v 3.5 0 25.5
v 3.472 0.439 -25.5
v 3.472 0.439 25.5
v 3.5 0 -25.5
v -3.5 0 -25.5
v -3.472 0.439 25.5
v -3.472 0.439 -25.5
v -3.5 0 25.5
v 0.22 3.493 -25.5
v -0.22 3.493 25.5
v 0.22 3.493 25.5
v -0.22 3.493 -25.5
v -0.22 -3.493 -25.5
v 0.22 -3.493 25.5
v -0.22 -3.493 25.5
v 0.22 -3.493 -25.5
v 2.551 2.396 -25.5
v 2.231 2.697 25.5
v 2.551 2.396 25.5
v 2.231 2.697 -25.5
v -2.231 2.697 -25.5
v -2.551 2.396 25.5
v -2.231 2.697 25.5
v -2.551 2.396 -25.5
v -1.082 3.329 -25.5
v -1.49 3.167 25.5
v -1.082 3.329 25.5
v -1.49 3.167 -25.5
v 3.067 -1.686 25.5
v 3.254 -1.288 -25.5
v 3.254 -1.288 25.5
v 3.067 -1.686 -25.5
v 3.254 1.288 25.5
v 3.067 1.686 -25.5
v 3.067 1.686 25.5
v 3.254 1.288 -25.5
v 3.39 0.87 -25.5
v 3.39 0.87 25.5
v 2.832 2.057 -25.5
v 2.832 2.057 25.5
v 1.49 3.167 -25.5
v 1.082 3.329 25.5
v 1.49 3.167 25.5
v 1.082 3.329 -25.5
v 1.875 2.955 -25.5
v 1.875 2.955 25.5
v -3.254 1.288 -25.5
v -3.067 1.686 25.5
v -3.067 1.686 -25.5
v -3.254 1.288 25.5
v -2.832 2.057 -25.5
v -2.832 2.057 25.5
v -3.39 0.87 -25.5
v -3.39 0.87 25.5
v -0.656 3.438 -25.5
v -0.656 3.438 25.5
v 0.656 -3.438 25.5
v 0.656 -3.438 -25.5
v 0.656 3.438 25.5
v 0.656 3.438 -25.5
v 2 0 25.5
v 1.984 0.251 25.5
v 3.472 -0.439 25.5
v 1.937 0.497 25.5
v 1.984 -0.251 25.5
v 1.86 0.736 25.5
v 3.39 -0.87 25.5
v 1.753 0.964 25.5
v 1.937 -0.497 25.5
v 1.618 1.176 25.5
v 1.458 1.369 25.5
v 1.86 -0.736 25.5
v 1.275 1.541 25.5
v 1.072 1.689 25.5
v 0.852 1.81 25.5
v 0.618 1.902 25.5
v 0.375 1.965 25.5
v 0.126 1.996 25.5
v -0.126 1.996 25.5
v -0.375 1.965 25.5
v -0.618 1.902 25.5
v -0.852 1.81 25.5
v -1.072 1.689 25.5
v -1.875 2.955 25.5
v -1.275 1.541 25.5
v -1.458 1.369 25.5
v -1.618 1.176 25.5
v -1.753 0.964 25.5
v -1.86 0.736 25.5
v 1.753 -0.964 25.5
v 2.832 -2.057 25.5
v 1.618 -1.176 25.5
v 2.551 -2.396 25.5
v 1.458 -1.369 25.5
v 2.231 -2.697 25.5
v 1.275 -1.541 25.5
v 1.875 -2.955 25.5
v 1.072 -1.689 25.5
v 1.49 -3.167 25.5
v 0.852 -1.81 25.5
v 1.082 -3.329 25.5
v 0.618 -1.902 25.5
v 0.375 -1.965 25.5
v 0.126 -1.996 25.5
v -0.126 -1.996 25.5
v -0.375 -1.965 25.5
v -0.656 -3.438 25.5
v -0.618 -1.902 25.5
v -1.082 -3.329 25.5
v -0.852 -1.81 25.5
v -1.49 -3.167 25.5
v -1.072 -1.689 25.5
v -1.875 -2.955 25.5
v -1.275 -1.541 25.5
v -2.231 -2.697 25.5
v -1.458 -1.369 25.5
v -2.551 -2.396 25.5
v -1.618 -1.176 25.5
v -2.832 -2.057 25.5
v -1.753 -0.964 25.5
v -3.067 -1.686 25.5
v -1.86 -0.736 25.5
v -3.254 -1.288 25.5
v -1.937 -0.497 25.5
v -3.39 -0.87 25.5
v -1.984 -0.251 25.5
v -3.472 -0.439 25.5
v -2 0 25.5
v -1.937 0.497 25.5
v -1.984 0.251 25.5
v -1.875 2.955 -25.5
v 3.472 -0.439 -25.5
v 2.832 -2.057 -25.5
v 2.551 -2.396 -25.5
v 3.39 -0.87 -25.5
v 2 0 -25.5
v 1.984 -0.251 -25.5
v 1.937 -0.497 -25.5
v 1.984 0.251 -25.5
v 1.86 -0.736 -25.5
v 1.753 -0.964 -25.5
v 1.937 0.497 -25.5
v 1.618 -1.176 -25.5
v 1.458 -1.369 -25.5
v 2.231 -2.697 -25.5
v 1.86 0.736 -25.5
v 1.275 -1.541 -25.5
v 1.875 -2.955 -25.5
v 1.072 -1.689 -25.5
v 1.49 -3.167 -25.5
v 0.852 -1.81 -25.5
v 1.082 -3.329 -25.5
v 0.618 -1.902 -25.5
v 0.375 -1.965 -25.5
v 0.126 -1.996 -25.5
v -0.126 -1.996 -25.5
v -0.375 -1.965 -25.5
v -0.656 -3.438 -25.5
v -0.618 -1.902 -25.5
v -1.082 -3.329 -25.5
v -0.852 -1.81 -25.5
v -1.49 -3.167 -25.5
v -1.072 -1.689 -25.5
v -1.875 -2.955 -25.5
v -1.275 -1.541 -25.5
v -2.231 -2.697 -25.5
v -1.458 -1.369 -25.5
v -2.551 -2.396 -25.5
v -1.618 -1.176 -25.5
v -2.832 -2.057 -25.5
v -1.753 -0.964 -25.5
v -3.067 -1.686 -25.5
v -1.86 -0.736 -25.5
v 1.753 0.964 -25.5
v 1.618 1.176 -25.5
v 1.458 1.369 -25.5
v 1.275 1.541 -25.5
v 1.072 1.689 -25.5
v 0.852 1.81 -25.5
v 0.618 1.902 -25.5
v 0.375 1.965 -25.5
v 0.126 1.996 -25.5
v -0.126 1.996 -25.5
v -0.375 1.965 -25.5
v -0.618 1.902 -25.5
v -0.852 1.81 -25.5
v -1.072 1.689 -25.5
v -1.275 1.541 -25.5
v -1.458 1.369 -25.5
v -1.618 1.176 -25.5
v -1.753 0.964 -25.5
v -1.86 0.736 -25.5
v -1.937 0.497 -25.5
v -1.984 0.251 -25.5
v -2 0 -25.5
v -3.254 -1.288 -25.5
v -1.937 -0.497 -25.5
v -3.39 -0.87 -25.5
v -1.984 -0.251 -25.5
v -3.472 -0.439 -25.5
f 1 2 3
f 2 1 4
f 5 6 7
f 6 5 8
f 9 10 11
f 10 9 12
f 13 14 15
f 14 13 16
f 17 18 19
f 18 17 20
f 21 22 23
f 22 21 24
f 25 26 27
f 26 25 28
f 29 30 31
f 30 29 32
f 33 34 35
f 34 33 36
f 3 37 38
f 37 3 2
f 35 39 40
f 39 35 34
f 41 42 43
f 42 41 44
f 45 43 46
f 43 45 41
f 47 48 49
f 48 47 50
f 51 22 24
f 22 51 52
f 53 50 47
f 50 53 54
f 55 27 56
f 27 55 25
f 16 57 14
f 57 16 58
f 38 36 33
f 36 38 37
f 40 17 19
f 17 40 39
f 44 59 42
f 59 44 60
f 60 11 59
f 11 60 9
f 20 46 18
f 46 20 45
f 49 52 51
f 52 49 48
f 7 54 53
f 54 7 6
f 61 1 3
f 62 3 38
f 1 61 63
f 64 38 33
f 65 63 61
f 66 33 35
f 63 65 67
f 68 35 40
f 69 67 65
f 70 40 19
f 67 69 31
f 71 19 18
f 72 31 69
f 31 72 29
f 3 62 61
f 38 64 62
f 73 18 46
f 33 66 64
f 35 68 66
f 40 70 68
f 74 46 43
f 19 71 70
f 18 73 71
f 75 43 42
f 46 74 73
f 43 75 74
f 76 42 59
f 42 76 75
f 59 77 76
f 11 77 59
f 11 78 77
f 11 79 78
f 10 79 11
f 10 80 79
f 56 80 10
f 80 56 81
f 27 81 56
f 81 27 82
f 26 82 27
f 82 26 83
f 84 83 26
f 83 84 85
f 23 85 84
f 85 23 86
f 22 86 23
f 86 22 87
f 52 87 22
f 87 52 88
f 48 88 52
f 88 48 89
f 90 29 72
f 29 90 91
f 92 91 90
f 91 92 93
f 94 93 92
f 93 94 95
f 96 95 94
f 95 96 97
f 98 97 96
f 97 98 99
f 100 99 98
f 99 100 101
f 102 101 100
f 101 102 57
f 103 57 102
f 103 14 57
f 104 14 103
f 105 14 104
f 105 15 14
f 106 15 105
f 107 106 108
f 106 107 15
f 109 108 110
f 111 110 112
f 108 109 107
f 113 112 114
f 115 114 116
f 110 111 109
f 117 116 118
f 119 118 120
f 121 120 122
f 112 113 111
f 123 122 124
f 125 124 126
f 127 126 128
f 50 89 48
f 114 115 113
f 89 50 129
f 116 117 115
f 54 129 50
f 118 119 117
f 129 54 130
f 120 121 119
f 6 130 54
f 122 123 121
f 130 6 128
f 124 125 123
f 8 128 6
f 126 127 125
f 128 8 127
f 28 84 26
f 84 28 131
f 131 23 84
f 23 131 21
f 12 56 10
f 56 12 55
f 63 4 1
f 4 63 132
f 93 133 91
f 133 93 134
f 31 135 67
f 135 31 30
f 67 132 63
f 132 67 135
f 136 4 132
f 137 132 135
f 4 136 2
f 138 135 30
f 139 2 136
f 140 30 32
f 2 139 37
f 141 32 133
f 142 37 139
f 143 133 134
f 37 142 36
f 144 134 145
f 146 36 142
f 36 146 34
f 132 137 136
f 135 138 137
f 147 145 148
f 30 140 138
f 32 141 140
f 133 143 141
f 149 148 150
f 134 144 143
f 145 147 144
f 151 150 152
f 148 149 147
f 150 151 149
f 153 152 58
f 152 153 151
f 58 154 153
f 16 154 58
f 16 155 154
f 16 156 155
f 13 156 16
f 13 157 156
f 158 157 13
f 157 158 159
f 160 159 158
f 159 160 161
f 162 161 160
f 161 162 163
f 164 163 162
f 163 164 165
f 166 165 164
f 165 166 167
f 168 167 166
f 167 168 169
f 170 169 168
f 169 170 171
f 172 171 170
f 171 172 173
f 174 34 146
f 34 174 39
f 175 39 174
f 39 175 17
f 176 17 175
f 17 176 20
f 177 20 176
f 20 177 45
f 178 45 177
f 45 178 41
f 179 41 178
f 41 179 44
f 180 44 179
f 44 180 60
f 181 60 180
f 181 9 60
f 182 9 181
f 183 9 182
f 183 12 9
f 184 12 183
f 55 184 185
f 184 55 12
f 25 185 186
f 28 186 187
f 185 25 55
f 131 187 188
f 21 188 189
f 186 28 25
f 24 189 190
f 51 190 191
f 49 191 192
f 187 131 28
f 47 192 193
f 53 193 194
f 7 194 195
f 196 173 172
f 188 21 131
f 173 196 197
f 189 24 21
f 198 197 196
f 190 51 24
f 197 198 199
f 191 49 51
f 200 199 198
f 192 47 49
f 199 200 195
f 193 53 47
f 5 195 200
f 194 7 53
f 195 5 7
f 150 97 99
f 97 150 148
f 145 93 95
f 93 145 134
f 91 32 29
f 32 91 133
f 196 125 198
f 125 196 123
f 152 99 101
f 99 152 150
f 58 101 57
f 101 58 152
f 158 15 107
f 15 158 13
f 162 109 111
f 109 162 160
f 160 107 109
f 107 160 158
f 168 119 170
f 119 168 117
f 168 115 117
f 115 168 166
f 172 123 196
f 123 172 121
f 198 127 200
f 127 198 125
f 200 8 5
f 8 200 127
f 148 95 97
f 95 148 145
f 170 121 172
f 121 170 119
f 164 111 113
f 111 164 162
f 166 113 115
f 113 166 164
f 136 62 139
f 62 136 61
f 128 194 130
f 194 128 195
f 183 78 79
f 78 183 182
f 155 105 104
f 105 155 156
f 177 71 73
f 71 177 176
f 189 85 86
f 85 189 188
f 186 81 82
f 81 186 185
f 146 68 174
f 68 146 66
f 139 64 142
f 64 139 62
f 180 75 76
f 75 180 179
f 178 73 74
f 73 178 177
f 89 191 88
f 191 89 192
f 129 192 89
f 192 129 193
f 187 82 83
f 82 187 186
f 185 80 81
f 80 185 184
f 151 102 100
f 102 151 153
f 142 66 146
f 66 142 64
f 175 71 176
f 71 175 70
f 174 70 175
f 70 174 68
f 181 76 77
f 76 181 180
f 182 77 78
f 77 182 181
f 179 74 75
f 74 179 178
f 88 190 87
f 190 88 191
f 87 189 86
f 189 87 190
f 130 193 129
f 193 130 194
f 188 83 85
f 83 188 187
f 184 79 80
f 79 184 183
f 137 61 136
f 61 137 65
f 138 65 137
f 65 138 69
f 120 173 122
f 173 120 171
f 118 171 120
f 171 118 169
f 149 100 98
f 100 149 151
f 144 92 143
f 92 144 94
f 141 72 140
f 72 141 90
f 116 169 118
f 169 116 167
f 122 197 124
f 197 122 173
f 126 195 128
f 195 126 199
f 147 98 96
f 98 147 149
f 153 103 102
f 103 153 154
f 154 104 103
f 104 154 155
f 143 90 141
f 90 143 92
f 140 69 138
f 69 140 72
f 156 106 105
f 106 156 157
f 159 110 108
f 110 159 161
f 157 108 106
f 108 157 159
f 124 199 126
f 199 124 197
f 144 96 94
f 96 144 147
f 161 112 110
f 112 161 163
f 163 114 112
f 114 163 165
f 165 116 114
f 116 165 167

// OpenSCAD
$fn = 50;


difference() {
	union() {
		translate(v = [0, 0, -25.5000000000]) {
			cylinder(h = 51, r = 3.5000000000);
		}
	}
	union() {
		translate(v = [0, 0, -100.0000000000]) {
			cylinder(h = 200, r = 2.0000000000);
		}
	}
}
